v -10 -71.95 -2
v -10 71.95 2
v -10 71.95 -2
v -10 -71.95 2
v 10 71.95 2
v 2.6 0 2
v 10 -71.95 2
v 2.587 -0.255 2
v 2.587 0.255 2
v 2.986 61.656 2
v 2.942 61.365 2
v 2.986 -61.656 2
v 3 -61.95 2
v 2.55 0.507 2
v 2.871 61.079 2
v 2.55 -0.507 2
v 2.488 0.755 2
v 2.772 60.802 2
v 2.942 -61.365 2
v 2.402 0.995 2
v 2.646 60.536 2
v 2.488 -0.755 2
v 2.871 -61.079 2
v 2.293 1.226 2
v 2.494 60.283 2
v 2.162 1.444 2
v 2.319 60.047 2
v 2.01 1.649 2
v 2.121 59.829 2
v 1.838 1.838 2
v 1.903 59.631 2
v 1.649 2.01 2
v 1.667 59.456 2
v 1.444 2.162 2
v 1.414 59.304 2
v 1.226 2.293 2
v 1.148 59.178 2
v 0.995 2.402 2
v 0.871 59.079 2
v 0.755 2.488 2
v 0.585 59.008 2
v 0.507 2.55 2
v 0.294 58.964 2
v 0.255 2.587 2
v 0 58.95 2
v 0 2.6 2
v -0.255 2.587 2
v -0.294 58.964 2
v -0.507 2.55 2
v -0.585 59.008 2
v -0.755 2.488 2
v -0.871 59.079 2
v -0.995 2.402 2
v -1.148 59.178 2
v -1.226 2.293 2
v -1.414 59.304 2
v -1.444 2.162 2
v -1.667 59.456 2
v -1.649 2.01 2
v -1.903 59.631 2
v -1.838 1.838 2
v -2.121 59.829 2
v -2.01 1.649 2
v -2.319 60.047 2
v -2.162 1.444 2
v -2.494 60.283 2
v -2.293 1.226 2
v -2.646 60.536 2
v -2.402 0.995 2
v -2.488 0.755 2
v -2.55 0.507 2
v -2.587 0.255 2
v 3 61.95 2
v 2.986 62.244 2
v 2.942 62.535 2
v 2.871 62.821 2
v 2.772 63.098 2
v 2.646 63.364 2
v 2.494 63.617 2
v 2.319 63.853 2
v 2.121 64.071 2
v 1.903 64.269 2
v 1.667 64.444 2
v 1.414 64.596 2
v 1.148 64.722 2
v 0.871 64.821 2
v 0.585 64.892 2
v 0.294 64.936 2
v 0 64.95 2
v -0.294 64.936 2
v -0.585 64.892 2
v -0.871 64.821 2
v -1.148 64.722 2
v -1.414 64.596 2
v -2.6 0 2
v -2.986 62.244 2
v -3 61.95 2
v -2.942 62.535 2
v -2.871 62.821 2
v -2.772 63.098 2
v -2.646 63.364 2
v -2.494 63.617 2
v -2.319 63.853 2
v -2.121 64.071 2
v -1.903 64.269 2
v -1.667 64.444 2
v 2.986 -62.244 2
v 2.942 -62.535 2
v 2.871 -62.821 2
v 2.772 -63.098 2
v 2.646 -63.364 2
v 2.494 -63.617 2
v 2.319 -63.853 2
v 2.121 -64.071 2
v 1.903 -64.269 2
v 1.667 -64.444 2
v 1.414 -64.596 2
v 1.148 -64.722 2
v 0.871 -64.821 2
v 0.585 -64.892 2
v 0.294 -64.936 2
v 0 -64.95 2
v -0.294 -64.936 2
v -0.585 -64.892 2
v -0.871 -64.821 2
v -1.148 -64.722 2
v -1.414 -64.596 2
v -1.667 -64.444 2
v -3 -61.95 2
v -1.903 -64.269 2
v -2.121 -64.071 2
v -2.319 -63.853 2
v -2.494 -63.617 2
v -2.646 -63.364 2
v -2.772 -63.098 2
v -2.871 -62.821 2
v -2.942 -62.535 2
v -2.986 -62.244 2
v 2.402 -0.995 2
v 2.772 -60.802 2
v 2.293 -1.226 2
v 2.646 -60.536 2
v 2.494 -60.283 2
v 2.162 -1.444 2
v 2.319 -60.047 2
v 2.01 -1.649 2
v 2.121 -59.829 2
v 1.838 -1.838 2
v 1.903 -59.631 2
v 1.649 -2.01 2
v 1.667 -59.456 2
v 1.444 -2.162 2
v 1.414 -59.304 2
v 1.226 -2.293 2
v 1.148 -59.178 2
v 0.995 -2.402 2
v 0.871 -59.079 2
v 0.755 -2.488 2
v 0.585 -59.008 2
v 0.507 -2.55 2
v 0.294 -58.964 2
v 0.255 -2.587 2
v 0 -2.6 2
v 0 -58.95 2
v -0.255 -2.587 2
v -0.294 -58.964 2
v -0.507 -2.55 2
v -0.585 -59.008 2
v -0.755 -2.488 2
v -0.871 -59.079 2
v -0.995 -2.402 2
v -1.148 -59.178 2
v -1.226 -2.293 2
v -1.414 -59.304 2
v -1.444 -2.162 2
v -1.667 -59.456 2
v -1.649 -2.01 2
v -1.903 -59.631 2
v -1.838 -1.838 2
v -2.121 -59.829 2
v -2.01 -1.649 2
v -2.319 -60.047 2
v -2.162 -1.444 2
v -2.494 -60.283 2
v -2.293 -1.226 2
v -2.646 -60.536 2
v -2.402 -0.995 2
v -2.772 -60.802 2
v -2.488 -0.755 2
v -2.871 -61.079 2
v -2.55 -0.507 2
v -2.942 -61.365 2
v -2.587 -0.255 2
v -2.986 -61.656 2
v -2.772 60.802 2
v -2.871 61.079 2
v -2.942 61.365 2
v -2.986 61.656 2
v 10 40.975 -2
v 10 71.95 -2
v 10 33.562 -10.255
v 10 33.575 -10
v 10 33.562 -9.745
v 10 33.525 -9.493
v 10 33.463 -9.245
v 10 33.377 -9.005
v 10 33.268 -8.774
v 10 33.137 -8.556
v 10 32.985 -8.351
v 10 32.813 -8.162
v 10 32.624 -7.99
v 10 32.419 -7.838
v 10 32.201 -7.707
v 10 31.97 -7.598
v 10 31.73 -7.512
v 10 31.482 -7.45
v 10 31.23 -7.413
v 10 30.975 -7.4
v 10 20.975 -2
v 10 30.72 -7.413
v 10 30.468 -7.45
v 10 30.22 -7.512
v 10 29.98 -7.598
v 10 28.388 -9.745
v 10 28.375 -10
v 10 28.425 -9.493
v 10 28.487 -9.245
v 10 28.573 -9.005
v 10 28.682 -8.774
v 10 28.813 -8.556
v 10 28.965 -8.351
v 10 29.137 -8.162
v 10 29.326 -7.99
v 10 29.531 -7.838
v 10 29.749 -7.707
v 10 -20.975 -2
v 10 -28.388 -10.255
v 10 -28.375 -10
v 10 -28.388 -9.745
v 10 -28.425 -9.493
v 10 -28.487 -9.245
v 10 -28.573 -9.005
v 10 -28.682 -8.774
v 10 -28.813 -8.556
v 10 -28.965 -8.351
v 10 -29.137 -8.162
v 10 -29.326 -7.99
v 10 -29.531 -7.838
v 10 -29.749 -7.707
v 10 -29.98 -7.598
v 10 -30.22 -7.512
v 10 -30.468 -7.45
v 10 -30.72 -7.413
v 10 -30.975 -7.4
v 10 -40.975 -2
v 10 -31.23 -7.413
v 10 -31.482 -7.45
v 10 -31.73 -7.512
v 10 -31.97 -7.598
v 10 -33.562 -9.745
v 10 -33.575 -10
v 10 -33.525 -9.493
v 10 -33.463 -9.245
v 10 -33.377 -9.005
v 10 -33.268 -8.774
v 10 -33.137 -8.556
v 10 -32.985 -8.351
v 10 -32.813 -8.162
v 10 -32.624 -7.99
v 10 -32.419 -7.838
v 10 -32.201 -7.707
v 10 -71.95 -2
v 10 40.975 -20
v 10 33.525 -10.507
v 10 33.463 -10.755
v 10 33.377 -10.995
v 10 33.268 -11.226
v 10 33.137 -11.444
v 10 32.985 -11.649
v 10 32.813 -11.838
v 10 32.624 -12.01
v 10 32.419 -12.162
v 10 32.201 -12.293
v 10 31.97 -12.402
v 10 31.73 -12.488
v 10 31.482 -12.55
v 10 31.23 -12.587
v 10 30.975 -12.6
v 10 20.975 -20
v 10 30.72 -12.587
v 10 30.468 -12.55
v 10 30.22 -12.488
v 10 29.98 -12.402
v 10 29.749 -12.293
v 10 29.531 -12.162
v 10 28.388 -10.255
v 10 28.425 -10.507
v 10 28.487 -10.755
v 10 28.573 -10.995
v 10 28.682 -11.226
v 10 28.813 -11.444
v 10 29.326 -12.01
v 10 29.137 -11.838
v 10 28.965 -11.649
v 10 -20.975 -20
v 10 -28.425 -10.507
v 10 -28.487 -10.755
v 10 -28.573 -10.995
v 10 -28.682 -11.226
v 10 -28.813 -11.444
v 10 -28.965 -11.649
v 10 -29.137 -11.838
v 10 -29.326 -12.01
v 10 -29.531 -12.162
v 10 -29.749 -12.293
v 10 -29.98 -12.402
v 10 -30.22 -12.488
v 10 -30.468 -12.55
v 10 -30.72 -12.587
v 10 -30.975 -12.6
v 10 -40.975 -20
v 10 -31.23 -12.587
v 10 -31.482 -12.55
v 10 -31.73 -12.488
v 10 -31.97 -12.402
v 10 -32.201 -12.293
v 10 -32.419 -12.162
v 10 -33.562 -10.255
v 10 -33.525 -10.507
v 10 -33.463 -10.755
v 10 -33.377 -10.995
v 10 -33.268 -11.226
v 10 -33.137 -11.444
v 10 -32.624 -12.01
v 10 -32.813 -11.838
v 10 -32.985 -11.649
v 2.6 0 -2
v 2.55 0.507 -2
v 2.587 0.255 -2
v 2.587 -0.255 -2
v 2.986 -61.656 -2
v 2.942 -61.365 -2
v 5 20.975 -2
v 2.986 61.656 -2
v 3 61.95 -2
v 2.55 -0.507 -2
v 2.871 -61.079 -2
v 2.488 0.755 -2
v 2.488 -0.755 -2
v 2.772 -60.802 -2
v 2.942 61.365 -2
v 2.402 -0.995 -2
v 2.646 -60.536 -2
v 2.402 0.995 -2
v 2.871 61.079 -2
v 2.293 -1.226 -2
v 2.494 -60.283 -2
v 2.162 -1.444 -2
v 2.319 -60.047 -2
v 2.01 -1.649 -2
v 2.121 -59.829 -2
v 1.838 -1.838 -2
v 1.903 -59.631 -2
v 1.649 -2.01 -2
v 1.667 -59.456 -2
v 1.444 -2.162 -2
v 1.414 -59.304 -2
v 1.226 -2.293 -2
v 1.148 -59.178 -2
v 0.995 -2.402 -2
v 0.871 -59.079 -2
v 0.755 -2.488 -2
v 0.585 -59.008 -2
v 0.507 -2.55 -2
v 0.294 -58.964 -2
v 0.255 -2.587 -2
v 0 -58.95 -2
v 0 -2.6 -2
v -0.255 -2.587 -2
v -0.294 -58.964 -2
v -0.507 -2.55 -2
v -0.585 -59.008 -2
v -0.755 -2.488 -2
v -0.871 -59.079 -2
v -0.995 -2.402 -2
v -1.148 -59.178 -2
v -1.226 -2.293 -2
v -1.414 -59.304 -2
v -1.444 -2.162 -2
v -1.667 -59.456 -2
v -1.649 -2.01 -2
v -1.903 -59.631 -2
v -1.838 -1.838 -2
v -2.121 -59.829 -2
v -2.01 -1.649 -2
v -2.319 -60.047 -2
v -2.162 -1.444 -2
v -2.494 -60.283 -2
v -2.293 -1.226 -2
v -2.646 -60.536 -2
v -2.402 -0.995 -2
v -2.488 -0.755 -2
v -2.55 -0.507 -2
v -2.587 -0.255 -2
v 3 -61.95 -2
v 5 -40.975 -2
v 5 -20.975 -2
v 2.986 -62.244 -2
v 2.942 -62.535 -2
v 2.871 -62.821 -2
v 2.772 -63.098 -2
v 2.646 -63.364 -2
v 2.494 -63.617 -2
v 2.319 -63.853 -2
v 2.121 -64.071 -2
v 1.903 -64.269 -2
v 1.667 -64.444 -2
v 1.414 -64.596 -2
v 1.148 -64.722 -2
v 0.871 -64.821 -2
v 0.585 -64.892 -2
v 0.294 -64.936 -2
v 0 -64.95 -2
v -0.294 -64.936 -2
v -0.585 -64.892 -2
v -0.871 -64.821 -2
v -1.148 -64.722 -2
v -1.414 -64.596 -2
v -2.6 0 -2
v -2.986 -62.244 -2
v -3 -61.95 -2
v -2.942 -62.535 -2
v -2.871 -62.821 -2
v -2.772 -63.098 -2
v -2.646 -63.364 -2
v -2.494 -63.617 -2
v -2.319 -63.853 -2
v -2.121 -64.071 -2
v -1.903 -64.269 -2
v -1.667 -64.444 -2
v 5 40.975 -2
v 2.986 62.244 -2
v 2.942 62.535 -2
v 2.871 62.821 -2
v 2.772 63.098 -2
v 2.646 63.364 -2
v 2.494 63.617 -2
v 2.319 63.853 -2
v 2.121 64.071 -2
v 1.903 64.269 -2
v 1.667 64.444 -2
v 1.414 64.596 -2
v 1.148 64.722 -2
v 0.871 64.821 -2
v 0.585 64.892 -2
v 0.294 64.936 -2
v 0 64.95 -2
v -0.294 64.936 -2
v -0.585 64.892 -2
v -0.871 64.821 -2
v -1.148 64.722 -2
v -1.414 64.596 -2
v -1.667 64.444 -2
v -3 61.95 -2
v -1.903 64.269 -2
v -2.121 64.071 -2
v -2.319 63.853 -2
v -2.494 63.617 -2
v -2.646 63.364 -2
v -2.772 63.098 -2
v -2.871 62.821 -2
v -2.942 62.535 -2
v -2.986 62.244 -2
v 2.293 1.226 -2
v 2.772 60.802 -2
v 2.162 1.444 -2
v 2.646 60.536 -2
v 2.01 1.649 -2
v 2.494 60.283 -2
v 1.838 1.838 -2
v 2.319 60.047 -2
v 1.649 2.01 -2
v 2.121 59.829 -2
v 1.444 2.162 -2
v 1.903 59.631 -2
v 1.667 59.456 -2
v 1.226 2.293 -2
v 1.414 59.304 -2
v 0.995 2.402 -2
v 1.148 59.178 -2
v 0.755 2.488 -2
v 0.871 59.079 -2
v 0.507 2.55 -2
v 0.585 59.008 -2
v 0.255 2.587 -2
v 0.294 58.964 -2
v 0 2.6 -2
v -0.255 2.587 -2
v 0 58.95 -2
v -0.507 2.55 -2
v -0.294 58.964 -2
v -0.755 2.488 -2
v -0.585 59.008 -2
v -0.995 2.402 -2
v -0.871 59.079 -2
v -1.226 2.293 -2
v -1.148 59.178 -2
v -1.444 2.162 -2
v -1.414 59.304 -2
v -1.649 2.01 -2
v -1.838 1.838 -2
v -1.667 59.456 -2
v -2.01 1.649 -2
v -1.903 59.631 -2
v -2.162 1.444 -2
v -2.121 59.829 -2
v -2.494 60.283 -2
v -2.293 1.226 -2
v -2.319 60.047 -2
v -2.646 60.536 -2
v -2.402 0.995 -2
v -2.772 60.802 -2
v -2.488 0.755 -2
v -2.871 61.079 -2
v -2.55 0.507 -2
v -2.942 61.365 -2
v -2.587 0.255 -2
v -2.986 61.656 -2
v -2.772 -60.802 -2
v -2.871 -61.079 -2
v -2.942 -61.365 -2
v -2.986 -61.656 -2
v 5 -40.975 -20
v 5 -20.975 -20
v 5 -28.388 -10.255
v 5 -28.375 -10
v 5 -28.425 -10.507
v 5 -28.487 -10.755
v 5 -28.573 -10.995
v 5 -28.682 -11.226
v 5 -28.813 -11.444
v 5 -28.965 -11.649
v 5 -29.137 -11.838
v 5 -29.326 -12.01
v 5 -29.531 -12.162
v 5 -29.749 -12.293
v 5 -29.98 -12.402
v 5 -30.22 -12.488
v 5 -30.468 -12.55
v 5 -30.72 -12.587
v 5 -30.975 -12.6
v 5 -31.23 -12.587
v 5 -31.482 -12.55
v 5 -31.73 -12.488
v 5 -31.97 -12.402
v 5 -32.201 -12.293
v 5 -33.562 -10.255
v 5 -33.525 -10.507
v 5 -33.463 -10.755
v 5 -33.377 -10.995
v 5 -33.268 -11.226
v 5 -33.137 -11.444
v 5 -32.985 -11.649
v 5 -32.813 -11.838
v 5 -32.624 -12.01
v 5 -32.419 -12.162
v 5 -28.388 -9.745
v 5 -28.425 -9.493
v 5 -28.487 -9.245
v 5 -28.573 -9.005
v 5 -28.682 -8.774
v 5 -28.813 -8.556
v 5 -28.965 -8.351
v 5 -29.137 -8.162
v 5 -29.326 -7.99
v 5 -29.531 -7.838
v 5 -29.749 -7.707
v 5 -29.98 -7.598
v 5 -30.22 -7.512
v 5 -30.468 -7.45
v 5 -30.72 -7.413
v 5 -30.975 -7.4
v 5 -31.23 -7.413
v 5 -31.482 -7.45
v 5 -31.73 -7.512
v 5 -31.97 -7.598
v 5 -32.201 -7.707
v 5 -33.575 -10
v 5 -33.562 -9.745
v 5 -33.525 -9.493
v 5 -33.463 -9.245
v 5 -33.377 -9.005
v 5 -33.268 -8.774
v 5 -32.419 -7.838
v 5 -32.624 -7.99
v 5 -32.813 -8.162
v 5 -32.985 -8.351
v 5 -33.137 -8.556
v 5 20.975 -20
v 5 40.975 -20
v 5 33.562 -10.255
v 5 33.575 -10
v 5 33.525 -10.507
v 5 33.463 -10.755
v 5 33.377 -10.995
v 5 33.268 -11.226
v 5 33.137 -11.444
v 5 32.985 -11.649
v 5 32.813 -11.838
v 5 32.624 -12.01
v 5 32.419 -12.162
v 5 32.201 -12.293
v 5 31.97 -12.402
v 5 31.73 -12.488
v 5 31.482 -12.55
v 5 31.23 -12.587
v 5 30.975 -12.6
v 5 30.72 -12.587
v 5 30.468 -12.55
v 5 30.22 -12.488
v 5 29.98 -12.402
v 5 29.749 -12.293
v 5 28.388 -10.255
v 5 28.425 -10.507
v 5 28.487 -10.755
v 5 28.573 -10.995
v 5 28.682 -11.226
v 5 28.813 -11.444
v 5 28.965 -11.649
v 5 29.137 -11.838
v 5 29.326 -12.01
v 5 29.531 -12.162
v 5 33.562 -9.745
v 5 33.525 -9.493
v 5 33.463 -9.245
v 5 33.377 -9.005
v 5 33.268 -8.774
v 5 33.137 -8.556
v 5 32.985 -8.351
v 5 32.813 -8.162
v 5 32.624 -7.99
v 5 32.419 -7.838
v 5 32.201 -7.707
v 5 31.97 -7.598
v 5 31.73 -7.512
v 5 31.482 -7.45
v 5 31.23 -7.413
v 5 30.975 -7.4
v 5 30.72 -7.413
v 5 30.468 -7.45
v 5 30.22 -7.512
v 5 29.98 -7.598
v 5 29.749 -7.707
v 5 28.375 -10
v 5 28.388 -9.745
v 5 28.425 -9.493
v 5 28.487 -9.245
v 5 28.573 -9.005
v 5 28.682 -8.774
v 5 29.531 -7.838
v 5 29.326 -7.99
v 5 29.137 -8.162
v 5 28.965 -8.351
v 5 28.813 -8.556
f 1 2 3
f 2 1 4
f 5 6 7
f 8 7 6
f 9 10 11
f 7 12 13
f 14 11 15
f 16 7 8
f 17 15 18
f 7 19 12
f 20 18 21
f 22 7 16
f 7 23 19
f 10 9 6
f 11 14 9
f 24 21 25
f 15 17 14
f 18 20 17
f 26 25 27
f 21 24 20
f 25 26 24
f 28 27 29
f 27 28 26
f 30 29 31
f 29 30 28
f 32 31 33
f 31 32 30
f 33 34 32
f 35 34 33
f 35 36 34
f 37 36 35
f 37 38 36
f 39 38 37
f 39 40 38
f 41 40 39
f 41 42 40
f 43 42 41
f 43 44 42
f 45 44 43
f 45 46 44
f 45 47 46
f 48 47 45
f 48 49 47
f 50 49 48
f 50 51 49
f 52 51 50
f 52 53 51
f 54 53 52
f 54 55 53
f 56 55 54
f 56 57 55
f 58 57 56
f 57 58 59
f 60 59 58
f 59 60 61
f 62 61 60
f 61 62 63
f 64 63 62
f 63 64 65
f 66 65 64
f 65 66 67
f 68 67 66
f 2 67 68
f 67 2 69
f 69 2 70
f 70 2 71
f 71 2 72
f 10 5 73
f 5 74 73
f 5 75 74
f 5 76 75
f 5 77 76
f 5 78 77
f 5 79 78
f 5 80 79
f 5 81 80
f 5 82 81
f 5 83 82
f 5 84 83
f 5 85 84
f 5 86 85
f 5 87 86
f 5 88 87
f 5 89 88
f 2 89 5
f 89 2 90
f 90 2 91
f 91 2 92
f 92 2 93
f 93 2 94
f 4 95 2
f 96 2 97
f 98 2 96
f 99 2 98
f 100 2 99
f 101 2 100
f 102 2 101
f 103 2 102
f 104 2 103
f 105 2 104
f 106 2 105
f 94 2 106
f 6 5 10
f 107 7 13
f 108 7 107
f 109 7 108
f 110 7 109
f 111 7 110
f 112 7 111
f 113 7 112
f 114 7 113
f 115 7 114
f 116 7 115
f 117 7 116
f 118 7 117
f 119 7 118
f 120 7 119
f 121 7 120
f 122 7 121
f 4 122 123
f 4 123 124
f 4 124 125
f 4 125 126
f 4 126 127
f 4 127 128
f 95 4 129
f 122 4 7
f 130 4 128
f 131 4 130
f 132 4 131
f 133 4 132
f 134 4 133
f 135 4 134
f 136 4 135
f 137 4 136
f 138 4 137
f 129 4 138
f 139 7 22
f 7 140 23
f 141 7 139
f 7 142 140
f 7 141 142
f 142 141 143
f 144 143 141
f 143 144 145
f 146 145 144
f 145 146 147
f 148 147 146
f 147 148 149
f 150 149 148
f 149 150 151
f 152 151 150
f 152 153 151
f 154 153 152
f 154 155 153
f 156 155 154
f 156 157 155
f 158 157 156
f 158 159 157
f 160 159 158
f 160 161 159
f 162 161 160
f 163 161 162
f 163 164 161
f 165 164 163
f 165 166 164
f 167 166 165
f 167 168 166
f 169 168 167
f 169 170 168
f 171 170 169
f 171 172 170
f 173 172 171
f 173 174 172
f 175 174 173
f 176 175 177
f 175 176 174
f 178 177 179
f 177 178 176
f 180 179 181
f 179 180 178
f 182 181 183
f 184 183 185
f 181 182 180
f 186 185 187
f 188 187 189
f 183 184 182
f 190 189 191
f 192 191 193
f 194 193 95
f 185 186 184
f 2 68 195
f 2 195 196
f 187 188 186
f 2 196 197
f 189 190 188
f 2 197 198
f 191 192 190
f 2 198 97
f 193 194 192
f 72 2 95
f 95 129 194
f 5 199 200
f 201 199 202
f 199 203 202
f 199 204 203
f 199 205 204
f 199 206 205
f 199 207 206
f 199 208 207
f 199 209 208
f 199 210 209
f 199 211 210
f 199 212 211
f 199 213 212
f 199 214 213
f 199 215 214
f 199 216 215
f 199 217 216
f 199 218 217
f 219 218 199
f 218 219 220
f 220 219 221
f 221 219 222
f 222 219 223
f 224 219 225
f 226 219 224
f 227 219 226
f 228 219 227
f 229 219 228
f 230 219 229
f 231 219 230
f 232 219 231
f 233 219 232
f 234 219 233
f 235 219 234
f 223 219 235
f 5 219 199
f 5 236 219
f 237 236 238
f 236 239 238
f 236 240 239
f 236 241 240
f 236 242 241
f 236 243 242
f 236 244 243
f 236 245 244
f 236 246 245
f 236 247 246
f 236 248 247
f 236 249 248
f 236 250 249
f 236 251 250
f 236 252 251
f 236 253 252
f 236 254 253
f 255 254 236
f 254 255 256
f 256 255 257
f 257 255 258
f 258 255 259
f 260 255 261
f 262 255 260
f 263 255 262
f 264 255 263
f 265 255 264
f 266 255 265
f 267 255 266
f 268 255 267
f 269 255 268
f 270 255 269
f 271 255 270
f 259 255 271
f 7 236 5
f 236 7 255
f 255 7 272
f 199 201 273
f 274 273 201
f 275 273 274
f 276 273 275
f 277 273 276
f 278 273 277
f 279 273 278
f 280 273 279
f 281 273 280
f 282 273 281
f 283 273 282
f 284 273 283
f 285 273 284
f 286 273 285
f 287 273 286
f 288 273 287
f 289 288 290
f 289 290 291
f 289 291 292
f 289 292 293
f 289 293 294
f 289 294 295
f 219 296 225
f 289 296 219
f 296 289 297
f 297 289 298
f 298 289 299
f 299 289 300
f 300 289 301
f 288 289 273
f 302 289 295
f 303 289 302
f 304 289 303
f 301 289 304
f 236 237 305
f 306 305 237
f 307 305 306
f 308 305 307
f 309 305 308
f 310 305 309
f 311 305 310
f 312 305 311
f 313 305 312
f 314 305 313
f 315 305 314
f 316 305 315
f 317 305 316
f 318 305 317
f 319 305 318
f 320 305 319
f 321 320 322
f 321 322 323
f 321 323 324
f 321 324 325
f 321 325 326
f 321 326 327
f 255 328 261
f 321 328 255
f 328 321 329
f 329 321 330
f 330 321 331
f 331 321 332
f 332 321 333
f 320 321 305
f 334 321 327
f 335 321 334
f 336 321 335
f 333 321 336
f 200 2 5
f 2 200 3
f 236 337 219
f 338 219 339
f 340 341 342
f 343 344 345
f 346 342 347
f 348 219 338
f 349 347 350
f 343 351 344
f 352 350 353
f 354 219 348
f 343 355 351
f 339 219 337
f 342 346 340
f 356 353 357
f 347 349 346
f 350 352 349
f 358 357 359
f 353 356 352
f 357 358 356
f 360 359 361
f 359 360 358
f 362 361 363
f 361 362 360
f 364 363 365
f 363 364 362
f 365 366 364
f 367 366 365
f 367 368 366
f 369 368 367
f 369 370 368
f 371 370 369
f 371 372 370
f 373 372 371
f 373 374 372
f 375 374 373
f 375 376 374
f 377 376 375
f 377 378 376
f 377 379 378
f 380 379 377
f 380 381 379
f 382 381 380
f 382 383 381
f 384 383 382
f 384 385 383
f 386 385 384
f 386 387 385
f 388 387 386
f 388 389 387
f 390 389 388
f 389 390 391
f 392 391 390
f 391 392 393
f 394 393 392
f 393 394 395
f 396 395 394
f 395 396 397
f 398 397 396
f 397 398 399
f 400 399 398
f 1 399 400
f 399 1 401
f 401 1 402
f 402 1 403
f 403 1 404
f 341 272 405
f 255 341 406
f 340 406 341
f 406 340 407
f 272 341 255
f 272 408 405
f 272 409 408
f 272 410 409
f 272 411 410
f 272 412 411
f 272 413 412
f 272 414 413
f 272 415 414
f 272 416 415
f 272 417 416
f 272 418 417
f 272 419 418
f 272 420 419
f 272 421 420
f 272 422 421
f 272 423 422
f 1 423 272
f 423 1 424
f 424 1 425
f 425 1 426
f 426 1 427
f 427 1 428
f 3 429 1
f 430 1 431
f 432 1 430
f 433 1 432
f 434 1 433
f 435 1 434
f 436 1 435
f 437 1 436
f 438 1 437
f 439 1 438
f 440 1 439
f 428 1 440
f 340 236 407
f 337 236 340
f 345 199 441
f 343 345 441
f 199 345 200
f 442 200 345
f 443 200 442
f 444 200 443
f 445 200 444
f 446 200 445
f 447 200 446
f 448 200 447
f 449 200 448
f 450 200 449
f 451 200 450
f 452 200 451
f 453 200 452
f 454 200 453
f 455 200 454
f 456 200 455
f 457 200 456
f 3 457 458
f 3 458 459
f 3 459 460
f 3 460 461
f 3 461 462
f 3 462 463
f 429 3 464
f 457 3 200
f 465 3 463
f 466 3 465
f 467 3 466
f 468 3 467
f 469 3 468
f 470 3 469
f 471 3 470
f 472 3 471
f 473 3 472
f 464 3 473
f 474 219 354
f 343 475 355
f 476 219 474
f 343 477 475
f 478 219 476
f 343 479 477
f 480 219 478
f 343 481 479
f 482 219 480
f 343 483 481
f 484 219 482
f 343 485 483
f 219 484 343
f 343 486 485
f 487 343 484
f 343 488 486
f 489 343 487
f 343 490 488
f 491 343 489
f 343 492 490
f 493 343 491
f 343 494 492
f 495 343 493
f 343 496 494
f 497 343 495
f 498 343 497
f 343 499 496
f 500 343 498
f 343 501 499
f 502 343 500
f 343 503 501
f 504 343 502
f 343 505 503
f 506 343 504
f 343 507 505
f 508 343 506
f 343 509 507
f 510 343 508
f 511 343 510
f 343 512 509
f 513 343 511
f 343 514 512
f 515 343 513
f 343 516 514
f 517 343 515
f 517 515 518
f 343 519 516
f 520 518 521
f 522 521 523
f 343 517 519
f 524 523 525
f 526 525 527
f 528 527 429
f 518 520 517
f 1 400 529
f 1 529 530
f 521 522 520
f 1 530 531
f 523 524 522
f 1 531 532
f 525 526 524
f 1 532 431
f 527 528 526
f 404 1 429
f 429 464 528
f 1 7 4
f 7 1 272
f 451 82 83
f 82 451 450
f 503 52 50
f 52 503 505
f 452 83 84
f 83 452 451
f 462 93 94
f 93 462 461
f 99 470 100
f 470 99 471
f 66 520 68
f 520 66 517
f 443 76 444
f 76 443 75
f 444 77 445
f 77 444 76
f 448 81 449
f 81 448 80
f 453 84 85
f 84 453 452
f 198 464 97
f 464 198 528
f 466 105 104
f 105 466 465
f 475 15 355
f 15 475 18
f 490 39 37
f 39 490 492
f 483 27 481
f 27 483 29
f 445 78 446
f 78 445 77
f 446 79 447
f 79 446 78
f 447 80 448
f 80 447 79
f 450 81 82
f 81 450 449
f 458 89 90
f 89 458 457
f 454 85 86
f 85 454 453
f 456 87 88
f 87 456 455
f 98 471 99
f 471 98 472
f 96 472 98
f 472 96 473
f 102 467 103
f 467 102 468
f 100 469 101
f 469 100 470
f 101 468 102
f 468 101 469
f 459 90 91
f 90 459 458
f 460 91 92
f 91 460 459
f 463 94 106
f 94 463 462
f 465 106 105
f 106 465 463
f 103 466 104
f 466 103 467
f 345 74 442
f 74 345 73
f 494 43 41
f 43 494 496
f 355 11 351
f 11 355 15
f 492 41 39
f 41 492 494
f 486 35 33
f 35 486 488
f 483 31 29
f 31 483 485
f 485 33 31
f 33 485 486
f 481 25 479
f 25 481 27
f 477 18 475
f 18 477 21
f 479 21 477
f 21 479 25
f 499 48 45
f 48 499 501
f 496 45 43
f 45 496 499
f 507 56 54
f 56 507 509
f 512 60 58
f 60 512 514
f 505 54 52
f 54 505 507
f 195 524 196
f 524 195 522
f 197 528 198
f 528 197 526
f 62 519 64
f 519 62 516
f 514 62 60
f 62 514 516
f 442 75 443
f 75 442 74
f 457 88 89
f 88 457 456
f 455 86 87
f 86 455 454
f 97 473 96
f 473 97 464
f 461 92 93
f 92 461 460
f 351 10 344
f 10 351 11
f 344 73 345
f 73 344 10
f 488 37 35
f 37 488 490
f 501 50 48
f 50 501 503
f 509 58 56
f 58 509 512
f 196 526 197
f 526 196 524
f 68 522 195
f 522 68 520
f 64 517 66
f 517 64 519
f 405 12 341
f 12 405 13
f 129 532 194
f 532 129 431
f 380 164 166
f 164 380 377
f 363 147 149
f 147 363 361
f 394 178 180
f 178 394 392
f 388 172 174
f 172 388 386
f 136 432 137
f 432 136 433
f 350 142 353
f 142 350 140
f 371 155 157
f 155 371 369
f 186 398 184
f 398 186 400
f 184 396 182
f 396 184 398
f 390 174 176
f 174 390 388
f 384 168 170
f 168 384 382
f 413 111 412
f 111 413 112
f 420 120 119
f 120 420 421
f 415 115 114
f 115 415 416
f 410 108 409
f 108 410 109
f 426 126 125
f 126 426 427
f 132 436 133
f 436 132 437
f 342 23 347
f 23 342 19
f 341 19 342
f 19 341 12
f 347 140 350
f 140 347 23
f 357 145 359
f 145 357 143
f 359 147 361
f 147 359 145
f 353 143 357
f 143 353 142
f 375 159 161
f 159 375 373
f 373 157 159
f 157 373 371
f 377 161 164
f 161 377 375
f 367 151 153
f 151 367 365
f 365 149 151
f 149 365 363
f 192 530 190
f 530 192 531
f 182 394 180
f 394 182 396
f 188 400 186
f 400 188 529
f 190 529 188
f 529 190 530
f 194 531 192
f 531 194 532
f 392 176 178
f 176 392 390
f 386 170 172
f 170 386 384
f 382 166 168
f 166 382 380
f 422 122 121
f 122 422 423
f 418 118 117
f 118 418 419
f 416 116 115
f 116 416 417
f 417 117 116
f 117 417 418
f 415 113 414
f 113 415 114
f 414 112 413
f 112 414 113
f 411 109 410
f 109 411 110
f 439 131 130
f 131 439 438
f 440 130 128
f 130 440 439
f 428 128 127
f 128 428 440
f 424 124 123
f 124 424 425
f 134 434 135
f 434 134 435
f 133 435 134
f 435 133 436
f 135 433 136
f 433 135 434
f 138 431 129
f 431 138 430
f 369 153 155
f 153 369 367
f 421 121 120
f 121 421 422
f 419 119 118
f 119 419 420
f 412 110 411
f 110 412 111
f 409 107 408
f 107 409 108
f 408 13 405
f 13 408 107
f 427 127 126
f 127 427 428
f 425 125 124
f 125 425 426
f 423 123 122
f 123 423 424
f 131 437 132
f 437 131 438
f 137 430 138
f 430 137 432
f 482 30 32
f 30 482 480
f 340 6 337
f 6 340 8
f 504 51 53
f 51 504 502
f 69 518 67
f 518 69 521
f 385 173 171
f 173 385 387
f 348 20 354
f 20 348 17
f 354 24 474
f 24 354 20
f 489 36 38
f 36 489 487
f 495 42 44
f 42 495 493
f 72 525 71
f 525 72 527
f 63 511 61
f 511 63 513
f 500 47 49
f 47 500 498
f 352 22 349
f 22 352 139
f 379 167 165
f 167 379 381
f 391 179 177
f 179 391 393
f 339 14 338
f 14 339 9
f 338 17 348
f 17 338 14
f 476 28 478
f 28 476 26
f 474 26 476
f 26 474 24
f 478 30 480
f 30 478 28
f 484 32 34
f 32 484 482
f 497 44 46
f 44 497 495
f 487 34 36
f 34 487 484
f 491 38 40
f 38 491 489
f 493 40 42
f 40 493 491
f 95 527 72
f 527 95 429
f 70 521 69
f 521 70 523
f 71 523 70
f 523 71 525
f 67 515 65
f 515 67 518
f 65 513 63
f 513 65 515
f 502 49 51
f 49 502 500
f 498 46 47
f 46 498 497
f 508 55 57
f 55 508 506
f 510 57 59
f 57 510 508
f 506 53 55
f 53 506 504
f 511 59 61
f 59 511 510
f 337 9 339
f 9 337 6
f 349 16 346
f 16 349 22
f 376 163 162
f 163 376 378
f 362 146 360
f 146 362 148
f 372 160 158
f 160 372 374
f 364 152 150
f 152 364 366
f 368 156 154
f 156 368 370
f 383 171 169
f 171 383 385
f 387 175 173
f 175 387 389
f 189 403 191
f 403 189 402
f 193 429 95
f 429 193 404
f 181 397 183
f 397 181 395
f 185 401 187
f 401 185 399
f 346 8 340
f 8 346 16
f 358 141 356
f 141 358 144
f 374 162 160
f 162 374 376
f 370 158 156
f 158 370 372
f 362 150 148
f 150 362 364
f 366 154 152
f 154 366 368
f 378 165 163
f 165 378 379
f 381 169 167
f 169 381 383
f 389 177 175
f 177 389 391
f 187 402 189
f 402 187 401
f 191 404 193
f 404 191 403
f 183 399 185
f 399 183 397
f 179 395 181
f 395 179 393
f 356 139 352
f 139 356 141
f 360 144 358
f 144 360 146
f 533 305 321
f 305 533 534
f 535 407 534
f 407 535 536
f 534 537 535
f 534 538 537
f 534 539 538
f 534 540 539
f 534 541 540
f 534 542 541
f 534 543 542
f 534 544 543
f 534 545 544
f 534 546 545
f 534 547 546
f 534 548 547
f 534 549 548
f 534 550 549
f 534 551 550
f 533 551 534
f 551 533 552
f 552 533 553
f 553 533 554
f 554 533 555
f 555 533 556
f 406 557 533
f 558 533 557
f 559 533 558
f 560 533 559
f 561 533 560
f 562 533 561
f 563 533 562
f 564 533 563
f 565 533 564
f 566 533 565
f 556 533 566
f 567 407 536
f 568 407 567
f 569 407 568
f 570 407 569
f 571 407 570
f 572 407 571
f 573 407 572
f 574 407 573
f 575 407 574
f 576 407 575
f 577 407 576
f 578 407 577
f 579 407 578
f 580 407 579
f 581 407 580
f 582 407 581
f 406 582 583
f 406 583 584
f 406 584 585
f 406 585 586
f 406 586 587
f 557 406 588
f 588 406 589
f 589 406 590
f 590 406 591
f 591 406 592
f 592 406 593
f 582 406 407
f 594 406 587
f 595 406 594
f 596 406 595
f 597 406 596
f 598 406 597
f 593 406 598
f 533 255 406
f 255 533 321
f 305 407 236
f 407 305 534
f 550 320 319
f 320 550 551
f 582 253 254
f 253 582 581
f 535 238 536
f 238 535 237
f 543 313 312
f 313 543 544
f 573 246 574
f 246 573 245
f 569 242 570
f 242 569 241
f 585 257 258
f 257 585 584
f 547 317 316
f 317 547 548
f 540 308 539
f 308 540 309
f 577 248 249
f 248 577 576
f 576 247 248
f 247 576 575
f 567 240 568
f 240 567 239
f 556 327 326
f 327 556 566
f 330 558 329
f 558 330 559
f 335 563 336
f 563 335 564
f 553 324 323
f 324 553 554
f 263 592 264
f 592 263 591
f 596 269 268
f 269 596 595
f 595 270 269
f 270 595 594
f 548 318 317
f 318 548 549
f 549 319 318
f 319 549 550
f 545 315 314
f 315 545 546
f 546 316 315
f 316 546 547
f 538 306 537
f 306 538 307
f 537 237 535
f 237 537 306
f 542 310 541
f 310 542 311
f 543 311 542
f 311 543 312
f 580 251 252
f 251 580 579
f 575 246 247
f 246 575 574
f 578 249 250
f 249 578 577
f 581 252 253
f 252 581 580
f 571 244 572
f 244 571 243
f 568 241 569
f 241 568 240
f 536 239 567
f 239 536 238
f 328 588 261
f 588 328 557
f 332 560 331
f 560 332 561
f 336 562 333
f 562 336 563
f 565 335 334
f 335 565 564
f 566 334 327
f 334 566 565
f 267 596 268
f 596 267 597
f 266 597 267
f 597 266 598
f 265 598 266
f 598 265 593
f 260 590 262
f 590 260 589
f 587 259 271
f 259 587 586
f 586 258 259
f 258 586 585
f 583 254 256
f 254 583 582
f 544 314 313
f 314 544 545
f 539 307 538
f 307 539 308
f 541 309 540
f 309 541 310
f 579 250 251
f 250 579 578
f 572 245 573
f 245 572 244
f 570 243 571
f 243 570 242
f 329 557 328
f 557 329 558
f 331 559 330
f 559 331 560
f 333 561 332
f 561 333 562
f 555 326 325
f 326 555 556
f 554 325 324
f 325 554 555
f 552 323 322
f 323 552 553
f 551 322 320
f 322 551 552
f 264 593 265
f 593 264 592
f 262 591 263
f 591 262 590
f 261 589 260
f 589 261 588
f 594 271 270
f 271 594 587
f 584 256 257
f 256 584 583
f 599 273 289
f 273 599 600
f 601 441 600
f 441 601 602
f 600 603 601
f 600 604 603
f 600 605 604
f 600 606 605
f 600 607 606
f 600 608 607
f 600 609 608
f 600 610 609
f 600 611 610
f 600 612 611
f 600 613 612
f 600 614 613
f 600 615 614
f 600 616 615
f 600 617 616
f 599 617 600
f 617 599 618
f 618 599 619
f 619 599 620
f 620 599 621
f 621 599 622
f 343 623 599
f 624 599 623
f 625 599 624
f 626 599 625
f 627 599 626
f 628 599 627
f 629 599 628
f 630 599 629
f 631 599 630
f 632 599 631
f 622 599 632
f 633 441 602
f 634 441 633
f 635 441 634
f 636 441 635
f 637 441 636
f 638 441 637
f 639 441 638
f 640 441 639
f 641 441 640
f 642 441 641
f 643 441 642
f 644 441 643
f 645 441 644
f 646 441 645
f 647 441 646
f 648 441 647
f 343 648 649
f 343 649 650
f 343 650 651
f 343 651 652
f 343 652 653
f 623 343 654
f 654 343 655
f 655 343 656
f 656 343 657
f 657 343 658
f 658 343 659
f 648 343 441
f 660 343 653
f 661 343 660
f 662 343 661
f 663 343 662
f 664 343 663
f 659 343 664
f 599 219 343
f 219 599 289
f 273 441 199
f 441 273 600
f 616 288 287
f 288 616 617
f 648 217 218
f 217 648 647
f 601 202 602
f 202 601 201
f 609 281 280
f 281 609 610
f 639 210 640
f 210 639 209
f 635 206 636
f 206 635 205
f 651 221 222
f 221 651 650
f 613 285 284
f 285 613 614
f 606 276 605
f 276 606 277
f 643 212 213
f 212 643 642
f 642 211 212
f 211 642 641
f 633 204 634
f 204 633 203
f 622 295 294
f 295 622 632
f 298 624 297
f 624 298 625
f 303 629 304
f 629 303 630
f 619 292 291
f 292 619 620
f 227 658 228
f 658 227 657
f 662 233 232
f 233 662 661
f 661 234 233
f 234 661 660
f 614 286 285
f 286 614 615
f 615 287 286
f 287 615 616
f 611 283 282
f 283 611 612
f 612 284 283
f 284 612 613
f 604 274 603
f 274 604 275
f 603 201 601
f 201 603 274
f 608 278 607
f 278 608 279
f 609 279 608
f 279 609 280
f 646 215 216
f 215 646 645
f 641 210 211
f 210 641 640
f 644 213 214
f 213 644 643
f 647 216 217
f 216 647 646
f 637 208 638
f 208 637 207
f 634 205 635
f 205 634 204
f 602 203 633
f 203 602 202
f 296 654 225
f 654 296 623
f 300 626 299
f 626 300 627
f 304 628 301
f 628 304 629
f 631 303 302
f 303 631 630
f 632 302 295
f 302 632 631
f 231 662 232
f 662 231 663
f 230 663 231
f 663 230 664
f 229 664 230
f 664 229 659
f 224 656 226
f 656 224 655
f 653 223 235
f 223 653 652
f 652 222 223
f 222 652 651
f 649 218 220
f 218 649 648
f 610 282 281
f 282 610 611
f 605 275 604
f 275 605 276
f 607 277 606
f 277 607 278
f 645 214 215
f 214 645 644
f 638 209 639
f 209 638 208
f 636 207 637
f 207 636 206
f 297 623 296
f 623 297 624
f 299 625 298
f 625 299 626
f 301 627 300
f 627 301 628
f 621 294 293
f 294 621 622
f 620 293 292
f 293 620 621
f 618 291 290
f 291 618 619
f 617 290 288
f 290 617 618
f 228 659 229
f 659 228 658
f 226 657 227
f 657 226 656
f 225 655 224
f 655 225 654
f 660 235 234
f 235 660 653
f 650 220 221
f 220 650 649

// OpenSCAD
$fn=64;
m5=2.6;
m6=3;
m3=1.6;
latch=35;
bhd_from_edge=21.5+2.6-latch/2;
bh=62;

w=118.5 + 2 *5.2 + 20-5;
echo(118.5 + 2 *5.2 + 20-5);

module latch(){



translate([0,0,-10])
rotate([0,90,0])
difference(){
    cube([20,20,5],center=true);
    
    translate([0,0,-4])
    cylinder(100,m5,m5);

}}

difference(){
    cube([20,w,4],center=true);
    
    // this hole is for screwing into the top plate and lines up with a ball joint
    translate([0,w/2 -10,-4])
    cylinder(100,m6,m6);
    
    translate([0,-w/2+10,-4])
    cylinder(100,m6,m6);
    
    // this hole is for screwing into the top plate and lines up with a ball joint
    translate([0,0,-4])
    cylinder(100,m5,m5);
    
}

// these latches are where the ball joints end up getting screwed in - remember the ball joint center to ball joint center is 140mm, so that is where the center of these holes on the latches must be
translate([7.5,-(w-20)/4,0])
latch();

translate([7.5,(w-20)/4,0])
latch();

echo((w-20)/4);
